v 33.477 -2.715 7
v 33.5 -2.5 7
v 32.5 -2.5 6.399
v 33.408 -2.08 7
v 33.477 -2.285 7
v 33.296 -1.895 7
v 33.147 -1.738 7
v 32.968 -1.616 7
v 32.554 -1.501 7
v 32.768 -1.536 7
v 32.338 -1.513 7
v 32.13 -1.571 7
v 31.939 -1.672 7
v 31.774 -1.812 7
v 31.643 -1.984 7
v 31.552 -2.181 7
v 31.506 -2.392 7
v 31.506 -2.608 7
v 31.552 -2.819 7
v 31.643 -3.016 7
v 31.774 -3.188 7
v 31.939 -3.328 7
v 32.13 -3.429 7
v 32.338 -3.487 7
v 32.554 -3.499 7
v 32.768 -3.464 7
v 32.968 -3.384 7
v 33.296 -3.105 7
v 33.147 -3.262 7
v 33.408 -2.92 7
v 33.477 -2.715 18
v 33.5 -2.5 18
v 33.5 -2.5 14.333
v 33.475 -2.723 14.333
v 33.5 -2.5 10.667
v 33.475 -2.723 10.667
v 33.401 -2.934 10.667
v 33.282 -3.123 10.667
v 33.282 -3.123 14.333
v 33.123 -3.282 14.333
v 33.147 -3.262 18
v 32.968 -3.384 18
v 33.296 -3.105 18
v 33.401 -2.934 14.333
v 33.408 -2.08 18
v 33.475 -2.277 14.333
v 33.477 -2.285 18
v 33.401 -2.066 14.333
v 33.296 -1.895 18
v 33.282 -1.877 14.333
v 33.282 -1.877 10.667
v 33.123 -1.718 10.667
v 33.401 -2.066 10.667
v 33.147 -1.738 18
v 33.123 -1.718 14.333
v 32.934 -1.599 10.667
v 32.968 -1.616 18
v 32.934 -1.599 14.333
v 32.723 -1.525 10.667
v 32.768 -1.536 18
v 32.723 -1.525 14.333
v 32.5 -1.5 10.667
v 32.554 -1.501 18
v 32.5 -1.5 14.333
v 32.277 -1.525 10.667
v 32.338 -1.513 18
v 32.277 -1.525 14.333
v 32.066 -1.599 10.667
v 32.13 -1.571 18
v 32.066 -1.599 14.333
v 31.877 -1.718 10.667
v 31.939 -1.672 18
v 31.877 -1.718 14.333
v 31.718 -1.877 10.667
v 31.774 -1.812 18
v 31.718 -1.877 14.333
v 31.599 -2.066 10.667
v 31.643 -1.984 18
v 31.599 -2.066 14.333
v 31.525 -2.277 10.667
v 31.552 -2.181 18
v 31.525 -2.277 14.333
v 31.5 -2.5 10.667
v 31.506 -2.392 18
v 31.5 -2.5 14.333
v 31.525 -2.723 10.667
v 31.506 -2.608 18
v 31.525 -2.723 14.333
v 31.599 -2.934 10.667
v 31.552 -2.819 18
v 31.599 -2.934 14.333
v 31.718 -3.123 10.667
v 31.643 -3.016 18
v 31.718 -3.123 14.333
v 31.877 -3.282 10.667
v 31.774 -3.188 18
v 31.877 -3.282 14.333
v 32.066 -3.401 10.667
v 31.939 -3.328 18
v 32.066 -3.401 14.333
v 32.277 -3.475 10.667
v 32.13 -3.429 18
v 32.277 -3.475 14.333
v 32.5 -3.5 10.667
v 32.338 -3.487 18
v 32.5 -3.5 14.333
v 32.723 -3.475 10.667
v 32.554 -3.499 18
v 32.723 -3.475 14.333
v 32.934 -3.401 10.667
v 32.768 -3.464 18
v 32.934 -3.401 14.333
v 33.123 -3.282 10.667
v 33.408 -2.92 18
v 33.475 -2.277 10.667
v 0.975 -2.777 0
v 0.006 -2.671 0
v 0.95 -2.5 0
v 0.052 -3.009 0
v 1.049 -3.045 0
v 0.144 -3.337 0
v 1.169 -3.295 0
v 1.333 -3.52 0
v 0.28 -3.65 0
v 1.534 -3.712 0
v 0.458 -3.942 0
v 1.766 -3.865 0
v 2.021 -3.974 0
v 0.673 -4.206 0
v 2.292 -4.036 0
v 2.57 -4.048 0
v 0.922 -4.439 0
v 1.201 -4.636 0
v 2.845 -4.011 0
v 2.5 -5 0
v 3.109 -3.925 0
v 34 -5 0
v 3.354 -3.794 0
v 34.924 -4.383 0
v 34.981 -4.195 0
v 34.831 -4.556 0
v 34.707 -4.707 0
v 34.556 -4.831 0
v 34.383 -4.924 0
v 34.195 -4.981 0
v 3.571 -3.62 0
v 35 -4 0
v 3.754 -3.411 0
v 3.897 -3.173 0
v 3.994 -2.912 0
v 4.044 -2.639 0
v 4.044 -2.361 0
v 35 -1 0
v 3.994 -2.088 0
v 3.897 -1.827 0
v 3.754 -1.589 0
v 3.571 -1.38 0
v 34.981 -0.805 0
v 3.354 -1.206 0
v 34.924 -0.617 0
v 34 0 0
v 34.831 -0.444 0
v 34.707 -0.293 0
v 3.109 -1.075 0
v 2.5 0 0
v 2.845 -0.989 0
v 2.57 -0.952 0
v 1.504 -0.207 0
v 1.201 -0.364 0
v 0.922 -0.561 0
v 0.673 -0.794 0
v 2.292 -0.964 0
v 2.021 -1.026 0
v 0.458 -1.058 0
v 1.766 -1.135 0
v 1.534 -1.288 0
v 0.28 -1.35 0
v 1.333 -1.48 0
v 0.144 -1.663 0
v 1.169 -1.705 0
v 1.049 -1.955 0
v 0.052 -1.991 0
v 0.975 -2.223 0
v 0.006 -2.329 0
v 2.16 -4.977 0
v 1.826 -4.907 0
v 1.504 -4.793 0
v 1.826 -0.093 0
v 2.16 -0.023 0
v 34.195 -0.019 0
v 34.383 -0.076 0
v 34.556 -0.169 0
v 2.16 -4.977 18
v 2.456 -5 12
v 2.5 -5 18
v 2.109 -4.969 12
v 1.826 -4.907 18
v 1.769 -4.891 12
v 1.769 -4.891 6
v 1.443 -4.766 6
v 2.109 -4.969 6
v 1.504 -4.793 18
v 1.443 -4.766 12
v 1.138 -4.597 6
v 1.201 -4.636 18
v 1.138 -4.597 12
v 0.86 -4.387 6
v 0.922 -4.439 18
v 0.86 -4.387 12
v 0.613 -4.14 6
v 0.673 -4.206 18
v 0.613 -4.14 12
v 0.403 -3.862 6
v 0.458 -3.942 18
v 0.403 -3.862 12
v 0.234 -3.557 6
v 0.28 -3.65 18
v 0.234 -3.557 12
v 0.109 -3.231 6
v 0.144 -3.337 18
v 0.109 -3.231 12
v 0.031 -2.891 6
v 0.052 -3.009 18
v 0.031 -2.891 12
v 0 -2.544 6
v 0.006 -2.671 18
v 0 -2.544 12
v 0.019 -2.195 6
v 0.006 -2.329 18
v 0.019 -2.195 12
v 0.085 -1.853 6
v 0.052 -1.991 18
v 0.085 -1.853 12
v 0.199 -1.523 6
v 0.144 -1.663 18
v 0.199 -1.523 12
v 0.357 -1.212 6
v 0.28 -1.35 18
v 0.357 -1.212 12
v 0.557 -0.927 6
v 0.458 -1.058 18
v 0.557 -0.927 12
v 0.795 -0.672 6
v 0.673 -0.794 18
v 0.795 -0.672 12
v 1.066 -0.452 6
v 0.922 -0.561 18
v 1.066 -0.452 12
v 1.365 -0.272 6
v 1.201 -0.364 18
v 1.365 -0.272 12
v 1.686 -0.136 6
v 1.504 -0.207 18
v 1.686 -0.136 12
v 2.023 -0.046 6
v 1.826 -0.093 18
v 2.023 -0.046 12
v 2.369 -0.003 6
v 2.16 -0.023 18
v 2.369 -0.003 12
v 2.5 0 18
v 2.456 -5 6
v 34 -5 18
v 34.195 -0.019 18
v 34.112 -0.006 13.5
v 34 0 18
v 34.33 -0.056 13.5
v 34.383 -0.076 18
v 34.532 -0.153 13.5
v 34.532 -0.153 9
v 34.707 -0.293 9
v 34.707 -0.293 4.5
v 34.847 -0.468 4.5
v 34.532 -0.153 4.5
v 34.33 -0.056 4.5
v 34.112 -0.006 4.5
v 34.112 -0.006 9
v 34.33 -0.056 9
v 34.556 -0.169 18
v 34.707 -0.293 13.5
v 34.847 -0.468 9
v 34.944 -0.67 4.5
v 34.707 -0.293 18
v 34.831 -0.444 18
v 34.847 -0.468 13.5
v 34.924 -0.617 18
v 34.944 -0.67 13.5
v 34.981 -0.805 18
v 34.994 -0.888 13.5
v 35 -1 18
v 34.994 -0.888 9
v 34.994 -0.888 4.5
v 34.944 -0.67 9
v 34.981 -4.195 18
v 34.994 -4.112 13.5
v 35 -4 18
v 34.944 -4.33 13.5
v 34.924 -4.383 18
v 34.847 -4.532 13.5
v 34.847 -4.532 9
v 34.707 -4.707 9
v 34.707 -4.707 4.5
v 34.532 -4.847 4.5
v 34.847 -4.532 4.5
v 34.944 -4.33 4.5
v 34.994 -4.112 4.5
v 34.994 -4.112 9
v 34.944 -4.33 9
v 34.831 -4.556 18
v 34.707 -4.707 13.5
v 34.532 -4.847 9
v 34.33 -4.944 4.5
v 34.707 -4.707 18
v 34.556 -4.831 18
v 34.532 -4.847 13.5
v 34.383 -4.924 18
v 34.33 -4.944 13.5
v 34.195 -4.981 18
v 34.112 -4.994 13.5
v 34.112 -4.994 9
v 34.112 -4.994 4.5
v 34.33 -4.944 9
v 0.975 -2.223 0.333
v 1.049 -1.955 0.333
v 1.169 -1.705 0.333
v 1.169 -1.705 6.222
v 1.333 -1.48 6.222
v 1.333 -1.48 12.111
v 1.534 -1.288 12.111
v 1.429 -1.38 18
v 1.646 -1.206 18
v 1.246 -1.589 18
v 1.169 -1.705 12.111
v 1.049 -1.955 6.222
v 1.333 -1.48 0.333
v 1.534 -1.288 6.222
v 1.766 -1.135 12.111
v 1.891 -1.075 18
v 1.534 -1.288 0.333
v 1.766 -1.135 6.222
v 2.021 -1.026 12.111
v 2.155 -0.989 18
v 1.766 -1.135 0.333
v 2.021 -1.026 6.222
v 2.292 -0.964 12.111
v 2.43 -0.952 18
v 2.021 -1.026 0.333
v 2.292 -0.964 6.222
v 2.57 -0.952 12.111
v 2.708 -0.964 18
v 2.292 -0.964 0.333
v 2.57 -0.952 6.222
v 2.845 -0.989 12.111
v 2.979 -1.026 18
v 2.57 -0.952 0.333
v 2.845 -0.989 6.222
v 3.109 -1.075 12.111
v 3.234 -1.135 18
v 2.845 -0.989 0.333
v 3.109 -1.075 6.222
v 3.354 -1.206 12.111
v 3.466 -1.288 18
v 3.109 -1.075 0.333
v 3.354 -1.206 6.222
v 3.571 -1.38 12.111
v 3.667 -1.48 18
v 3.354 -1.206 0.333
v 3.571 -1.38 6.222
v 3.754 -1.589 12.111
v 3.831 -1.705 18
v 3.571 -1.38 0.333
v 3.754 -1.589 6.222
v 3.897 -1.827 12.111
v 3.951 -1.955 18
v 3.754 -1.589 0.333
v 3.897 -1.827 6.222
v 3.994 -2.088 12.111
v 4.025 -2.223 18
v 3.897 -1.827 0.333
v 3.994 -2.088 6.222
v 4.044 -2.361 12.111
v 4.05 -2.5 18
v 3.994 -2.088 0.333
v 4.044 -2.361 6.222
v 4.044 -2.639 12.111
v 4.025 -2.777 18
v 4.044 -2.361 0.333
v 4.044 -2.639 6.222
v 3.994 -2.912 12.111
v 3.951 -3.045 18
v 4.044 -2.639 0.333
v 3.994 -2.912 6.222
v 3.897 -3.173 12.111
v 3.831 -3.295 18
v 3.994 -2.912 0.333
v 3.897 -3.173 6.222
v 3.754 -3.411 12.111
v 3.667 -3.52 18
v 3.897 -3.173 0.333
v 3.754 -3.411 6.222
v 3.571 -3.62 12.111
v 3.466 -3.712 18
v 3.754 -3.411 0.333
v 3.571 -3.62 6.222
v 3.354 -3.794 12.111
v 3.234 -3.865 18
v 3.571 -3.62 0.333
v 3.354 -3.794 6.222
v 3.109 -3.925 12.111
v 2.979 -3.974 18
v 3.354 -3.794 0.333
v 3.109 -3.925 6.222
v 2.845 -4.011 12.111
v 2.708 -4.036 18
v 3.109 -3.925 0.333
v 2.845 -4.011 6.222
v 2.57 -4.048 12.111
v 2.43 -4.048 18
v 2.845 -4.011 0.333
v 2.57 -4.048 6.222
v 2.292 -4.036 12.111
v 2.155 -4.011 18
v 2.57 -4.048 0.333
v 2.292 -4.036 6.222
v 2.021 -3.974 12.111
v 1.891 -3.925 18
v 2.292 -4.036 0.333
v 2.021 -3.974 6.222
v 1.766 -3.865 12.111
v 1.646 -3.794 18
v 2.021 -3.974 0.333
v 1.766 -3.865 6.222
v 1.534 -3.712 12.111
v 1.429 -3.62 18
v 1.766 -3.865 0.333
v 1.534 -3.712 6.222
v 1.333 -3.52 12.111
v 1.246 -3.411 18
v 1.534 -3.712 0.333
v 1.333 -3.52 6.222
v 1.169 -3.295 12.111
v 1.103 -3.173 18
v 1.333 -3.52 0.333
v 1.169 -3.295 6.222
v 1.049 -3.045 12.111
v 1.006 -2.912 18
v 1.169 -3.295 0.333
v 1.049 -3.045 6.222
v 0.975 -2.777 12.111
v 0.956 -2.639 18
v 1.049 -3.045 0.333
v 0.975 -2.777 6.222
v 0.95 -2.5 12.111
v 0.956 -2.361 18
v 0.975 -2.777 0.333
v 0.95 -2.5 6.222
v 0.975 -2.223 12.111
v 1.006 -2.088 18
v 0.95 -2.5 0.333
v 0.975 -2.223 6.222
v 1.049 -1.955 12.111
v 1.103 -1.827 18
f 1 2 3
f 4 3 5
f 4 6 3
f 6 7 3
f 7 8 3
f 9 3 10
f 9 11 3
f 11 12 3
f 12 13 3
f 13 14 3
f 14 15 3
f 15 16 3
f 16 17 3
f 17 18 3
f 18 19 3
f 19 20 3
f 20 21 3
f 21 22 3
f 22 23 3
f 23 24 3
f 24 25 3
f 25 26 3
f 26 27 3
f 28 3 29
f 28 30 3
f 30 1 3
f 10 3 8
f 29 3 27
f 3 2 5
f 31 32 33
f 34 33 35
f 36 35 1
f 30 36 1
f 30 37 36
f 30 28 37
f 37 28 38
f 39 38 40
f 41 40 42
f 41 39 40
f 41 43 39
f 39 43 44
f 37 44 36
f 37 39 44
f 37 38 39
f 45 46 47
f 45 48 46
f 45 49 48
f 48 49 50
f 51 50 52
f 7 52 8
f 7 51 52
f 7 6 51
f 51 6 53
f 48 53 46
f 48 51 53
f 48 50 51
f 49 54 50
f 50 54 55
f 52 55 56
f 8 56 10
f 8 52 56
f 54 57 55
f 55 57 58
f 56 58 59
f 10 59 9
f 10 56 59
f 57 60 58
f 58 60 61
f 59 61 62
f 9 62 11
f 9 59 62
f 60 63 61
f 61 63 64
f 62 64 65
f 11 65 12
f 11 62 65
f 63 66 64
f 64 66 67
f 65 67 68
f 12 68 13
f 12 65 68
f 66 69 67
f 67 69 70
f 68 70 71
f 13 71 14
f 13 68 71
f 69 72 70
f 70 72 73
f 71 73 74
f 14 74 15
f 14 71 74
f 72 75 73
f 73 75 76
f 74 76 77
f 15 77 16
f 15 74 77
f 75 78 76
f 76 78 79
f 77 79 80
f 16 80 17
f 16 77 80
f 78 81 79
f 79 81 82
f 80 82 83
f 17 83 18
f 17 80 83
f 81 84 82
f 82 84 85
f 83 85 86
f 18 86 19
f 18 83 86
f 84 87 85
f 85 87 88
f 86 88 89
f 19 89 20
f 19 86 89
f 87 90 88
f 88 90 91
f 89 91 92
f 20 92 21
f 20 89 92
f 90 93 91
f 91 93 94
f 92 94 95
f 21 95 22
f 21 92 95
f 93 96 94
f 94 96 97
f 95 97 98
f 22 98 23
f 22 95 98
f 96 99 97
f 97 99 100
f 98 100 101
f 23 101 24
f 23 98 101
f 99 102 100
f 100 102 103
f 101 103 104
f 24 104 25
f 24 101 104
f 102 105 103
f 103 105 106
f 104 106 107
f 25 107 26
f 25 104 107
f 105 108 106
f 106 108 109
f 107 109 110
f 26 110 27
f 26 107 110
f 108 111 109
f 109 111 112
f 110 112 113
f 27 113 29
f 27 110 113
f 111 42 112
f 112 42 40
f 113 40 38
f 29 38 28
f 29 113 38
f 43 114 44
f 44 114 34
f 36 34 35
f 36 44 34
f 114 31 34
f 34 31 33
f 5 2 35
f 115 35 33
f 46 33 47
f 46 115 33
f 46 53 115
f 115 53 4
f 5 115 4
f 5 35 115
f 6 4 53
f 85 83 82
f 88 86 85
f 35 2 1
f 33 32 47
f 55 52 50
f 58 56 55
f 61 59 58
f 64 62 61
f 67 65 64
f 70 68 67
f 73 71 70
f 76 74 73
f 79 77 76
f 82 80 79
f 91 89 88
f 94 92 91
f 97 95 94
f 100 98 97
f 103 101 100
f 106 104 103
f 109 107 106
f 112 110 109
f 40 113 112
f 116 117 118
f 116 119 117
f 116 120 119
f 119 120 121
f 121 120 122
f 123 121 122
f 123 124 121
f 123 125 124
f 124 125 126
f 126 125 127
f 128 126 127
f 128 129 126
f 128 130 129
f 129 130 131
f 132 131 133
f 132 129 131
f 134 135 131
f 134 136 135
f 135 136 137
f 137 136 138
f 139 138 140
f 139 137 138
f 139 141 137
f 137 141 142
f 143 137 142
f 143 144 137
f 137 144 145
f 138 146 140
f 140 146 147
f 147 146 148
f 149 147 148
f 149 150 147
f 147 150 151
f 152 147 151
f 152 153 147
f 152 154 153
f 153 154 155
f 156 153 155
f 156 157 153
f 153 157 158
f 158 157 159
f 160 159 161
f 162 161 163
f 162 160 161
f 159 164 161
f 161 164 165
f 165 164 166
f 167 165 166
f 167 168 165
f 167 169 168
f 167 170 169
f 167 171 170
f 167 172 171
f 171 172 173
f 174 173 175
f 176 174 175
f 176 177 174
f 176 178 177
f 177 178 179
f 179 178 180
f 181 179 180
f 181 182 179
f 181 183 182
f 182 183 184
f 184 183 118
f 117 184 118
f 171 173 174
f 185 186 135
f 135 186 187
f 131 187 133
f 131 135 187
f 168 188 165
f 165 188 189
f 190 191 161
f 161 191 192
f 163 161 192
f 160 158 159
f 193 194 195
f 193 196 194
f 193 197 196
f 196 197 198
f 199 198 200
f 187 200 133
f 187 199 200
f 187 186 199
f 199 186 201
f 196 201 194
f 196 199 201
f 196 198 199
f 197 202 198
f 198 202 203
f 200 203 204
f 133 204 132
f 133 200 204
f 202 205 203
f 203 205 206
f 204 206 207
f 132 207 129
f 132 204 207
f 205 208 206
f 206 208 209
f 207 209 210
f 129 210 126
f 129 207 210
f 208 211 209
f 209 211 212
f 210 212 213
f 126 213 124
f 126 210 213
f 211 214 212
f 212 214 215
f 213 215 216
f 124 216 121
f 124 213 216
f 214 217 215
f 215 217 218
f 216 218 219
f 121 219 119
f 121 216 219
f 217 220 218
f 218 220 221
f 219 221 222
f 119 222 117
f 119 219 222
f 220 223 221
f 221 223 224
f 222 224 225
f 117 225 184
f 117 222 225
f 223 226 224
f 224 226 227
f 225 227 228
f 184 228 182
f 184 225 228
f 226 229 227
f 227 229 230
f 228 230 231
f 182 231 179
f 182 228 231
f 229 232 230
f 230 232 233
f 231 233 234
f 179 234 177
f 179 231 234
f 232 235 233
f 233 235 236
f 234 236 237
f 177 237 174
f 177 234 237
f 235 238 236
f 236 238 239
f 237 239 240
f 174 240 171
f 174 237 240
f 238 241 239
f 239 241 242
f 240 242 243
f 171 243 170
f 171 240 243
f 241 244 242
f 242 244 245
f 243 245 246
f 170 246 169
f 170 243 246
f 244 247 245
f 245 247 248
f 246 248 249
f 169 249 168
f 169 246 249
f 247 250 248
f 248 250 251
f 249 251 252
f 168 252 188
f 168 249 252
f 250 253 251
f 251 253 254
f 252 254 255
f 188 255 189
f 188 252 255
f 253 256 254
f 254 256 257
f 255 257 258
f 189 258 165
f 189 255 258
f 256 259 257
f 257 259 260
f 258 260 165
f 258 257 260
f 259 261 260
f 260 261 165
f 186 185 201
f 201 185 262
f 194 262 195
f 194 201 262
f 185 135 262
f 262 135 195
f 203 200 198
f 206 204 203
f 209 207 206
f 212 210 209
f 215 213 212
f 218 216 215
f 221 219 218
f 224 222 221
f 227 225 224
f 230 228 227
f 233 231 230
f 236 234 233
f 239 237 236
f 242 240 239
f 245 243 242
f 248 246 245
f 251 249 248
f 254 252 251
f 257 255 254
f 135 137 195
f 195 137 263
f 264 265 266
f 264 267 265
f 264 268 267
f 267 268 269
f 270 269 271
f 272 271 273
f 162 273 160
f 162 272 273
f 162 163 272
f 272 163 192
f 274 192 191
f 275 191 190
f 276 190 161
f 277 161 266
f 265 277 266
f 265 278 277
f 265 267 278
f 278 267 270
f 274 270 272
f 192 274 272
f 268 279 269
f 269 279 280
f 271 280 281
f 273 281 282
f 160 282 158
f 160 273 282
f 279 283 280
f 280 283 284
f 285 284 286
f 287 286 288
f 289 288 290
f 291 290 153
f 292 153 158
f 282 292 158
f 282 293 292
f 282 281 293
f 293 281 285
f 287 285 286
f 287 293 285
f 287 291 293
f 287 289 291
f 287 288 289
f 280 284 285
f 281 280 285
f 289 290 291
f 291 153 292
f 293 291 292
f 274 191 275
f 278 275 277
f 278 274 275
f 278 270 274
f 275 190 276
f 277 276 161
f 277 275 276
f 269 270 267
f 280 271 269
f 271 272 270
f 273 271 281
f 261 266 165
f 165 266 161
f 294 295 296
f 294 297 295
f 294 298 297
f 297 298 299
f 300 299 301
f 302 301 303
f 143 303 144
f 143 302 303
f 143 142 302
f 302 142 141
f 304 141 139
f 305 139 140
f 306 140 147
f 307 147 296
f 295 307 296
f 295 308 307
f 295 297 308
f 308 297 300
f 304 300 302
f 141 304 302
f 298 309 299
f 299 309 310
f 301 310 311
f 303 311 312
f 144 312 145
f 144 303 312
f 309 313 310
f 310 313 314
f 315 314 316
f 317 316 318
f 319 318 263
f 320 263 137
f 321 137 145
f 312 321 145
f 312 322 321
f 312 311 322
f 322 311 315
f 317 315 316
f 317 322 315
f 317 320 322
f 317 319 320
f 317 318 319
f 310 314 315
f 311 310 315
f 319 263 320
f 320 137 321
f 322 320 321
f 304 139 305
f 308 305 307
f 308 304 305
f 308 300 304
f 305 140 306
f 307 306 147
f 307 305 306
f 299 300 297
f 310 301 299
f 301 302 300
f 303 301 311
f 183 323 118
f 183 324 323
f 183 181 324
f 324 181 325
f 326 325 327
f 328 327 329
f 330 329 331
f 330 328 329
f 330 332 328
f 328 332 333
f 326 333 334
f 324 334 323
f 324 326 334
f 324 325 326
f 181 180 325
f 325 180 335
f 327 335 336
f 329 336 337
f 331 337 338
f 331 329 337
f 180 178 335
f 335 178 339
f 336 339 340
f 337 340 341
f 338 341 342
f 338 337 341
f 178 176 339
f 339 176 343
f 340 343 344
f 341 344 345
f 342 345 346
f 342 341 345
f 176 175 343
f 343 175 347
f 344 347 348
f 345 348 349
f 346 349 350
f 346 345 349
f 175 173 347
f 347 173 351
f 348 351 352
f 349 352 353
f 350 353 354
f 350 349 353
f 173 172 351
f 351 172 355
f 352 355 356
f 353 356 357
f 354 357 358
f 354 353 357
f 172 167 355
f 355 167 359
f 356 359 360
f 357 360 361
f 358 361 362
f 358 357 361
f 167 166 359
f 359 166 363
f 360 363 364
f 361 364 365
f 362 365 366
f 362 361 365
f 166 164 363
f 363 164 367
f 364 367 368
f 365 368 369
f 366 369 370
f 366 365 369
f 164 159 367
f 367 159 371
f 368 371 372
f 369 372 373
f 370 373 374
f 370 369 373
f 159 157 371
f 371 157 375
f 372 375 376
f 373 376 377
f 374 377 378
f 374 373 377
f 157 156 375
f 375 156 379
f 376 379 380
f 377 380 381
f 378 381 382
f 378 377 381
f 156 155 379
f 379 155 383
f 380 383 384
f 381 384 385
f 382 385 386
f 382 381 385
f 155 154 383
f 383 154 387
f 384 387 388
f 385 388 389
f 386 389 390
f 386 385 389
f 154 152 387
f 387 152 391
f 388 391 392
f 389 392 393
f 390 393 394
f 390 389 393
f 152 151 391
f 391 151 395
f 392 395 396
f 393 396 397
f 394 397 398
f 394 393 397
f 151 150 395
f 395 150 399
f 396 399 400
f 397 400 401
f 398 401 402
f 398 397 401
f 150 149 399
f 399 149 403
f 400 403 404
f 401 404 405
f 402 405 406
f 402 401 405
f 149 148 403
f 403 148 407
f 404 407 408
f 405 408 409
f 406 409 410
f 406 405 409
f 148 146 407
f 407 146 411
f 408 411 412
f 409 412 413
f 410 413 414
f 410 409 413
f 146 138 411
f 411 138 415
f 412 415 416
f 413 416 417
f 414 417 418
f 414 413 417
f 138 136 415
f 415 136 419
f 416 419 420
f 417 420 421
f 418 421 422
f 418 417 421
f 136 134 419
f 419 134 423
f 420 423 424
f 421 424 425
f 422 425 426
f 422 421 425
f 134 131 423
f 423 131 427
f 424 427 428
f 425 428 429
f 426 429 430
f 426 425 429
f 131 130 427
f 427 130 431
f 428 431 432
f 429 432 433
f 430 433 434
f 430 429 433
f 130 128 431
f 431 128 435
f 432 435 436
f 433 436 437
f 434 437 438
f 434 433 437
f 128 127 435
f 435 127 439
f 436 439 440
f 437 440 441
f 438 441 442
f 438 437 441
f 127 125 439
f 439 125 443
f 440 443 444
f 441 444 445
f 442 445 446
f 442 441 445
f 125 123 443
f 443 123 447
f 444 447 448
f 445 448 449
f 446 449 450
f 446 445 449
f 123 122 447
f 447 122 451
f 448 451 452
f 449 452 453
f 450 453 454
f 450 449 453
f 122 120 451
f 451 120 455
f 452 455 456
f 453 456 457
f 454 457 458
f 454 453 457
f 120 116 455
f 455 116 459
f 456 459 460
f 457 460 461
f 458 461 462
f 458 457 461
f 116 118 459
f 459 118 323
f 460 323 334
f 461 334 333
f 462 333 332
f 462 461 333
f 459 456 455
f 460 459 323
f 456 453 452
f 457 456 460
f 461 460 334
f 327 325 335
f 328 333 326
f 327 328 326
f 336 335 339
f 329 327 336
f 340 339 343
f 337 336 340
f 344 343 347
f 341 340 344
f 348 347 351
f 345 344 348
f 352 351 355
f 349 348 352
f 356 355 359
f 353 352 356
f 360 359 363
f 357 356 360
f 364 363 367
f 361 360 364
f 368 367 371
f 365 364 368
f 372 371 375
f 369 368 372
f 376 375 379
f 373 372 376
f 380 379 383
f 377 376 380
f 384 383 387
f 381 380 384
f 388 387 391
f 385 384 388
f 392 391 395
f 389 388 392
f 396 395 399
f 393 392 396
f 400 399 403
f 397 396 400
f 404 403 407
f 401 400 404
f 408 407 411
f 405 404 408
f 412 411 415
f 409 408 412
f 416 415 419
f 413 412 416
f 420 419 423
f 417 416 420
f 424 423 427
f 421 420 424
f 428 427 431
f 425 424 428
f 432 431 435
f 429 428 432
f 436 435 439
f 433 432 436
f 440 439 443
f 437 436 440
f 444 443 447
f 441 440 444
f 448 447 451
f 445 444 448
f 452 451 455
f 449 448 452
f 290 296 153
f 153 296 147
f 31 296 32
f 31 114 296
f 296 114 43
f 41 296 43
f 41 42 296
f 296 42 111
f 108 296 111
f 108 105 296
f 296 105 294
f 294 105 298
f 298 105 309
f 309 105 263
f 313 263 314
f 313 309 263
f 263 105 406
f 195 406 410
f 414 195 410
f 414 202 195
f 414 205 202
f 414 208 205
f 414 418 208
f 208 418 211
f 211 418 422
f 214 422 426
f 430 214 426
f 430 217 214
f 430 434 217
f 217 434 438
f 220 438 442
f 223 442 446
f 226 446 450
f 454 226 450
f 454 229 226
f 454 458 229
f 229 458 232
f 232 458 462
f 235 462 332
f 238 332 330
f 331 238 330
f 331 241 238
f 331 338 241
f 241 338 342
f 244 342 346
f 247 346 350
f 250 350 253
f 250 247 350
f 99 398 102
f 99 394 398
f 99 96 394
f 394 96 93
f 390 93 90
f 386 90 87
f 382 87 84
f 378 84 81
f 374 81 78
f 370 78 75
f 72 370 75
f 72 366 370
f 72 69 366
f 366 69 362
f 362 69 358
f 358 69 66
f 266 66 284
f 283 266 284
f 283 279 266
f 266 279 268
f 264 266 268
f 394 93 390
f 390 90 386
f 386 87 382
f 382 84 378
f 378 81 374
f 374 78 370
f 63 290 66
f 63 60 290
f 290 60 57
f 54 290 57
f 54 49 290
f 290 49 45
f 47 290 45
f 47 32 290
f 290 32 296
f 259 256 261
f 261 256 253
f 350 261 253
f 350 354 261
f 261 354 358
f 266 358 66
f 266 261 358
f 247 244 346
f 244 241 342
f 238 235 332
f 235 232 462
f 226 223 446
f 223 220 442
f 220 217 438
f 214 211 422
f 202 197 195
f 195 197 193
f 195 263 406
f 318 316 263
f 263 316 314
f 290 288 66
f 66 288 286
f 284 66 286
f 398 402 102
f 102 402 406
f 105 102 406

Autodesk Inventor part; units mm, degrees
ref_plane "YZ Plane" through (0, 0, 0) normal (1, 0, 0) x (0, 1, 0)
ref_plane "XZ Plane" through (0, 0, 0) normal (0, 1, 0) x (-1, 0, 0)
ref_plane "XY Plane" through (0, 0, 0) normal (0, 0, 1) x (1, 0, 0)
sketch "Sketch1" plane through (0, 0, 0) normal (0, 0, 1) x (1, 0, 0)
  line L0 (0, 0) -> (35, 0)
  line L1 (35, 0) -> (35, -5)
  line L2 (35, -5) -> (0, -5)
  line L3 (0, -5) -> (0, 0)
  dimension "d0" = 35
  dimension "d1" = 5
extrude "Extrusion1" add sketch "Sketch1" along normal blind 18
sketch "Sketch2" plane through (0, 0, 18) normal (0, 0, 1) x (1, 0, 0)
  line L0 (0, 0) -> (0, -5) projected
  line L1 (0, 0) -> (35, 0) projected
  point P0 (2.5, -2.5)
  dimension "d4" = 2.5
  dimension "d5" = 2.5
hole "Hole1" at (2.5, -2.5, 18) direction (0, 0, -1) diameter 3.1 end through all
fillet "Fillet1" radius 1 2 edges at (35, -5, 9) (35, 0, 9)
fillet "Fillet2" radius 2.5 2 edges at (0, -5, 9) (0, 0, 9)
sketch "Sketch3" plane through (0, 0, 18) normal (0, 0, 1) x (1, 0, 0)
  circle A0 centre (2.5, -2.5) radius 1.55 construction
  line L0 (2.5, -5) -> (34, -5) construction
  line L1 (34, 0) -> (2.5, 0) construction
  line L2 (35, -4) -> (35, -1) construction
  point P0 (0, 0)
  point P1 (32.5, -2.5)
  dimension "d15" = 2.5
  dimension "d16" = 2.5
  dimension "d17" = 5
hole "Hole2" at (32.5, -2.5, 18) direction (0, 0, -1) diameter 2 depth 11 tip angle 118
equation "\"d15\" = 0.5 * d17"
equation "\"d16\" = d15"
properties part number "porte"
